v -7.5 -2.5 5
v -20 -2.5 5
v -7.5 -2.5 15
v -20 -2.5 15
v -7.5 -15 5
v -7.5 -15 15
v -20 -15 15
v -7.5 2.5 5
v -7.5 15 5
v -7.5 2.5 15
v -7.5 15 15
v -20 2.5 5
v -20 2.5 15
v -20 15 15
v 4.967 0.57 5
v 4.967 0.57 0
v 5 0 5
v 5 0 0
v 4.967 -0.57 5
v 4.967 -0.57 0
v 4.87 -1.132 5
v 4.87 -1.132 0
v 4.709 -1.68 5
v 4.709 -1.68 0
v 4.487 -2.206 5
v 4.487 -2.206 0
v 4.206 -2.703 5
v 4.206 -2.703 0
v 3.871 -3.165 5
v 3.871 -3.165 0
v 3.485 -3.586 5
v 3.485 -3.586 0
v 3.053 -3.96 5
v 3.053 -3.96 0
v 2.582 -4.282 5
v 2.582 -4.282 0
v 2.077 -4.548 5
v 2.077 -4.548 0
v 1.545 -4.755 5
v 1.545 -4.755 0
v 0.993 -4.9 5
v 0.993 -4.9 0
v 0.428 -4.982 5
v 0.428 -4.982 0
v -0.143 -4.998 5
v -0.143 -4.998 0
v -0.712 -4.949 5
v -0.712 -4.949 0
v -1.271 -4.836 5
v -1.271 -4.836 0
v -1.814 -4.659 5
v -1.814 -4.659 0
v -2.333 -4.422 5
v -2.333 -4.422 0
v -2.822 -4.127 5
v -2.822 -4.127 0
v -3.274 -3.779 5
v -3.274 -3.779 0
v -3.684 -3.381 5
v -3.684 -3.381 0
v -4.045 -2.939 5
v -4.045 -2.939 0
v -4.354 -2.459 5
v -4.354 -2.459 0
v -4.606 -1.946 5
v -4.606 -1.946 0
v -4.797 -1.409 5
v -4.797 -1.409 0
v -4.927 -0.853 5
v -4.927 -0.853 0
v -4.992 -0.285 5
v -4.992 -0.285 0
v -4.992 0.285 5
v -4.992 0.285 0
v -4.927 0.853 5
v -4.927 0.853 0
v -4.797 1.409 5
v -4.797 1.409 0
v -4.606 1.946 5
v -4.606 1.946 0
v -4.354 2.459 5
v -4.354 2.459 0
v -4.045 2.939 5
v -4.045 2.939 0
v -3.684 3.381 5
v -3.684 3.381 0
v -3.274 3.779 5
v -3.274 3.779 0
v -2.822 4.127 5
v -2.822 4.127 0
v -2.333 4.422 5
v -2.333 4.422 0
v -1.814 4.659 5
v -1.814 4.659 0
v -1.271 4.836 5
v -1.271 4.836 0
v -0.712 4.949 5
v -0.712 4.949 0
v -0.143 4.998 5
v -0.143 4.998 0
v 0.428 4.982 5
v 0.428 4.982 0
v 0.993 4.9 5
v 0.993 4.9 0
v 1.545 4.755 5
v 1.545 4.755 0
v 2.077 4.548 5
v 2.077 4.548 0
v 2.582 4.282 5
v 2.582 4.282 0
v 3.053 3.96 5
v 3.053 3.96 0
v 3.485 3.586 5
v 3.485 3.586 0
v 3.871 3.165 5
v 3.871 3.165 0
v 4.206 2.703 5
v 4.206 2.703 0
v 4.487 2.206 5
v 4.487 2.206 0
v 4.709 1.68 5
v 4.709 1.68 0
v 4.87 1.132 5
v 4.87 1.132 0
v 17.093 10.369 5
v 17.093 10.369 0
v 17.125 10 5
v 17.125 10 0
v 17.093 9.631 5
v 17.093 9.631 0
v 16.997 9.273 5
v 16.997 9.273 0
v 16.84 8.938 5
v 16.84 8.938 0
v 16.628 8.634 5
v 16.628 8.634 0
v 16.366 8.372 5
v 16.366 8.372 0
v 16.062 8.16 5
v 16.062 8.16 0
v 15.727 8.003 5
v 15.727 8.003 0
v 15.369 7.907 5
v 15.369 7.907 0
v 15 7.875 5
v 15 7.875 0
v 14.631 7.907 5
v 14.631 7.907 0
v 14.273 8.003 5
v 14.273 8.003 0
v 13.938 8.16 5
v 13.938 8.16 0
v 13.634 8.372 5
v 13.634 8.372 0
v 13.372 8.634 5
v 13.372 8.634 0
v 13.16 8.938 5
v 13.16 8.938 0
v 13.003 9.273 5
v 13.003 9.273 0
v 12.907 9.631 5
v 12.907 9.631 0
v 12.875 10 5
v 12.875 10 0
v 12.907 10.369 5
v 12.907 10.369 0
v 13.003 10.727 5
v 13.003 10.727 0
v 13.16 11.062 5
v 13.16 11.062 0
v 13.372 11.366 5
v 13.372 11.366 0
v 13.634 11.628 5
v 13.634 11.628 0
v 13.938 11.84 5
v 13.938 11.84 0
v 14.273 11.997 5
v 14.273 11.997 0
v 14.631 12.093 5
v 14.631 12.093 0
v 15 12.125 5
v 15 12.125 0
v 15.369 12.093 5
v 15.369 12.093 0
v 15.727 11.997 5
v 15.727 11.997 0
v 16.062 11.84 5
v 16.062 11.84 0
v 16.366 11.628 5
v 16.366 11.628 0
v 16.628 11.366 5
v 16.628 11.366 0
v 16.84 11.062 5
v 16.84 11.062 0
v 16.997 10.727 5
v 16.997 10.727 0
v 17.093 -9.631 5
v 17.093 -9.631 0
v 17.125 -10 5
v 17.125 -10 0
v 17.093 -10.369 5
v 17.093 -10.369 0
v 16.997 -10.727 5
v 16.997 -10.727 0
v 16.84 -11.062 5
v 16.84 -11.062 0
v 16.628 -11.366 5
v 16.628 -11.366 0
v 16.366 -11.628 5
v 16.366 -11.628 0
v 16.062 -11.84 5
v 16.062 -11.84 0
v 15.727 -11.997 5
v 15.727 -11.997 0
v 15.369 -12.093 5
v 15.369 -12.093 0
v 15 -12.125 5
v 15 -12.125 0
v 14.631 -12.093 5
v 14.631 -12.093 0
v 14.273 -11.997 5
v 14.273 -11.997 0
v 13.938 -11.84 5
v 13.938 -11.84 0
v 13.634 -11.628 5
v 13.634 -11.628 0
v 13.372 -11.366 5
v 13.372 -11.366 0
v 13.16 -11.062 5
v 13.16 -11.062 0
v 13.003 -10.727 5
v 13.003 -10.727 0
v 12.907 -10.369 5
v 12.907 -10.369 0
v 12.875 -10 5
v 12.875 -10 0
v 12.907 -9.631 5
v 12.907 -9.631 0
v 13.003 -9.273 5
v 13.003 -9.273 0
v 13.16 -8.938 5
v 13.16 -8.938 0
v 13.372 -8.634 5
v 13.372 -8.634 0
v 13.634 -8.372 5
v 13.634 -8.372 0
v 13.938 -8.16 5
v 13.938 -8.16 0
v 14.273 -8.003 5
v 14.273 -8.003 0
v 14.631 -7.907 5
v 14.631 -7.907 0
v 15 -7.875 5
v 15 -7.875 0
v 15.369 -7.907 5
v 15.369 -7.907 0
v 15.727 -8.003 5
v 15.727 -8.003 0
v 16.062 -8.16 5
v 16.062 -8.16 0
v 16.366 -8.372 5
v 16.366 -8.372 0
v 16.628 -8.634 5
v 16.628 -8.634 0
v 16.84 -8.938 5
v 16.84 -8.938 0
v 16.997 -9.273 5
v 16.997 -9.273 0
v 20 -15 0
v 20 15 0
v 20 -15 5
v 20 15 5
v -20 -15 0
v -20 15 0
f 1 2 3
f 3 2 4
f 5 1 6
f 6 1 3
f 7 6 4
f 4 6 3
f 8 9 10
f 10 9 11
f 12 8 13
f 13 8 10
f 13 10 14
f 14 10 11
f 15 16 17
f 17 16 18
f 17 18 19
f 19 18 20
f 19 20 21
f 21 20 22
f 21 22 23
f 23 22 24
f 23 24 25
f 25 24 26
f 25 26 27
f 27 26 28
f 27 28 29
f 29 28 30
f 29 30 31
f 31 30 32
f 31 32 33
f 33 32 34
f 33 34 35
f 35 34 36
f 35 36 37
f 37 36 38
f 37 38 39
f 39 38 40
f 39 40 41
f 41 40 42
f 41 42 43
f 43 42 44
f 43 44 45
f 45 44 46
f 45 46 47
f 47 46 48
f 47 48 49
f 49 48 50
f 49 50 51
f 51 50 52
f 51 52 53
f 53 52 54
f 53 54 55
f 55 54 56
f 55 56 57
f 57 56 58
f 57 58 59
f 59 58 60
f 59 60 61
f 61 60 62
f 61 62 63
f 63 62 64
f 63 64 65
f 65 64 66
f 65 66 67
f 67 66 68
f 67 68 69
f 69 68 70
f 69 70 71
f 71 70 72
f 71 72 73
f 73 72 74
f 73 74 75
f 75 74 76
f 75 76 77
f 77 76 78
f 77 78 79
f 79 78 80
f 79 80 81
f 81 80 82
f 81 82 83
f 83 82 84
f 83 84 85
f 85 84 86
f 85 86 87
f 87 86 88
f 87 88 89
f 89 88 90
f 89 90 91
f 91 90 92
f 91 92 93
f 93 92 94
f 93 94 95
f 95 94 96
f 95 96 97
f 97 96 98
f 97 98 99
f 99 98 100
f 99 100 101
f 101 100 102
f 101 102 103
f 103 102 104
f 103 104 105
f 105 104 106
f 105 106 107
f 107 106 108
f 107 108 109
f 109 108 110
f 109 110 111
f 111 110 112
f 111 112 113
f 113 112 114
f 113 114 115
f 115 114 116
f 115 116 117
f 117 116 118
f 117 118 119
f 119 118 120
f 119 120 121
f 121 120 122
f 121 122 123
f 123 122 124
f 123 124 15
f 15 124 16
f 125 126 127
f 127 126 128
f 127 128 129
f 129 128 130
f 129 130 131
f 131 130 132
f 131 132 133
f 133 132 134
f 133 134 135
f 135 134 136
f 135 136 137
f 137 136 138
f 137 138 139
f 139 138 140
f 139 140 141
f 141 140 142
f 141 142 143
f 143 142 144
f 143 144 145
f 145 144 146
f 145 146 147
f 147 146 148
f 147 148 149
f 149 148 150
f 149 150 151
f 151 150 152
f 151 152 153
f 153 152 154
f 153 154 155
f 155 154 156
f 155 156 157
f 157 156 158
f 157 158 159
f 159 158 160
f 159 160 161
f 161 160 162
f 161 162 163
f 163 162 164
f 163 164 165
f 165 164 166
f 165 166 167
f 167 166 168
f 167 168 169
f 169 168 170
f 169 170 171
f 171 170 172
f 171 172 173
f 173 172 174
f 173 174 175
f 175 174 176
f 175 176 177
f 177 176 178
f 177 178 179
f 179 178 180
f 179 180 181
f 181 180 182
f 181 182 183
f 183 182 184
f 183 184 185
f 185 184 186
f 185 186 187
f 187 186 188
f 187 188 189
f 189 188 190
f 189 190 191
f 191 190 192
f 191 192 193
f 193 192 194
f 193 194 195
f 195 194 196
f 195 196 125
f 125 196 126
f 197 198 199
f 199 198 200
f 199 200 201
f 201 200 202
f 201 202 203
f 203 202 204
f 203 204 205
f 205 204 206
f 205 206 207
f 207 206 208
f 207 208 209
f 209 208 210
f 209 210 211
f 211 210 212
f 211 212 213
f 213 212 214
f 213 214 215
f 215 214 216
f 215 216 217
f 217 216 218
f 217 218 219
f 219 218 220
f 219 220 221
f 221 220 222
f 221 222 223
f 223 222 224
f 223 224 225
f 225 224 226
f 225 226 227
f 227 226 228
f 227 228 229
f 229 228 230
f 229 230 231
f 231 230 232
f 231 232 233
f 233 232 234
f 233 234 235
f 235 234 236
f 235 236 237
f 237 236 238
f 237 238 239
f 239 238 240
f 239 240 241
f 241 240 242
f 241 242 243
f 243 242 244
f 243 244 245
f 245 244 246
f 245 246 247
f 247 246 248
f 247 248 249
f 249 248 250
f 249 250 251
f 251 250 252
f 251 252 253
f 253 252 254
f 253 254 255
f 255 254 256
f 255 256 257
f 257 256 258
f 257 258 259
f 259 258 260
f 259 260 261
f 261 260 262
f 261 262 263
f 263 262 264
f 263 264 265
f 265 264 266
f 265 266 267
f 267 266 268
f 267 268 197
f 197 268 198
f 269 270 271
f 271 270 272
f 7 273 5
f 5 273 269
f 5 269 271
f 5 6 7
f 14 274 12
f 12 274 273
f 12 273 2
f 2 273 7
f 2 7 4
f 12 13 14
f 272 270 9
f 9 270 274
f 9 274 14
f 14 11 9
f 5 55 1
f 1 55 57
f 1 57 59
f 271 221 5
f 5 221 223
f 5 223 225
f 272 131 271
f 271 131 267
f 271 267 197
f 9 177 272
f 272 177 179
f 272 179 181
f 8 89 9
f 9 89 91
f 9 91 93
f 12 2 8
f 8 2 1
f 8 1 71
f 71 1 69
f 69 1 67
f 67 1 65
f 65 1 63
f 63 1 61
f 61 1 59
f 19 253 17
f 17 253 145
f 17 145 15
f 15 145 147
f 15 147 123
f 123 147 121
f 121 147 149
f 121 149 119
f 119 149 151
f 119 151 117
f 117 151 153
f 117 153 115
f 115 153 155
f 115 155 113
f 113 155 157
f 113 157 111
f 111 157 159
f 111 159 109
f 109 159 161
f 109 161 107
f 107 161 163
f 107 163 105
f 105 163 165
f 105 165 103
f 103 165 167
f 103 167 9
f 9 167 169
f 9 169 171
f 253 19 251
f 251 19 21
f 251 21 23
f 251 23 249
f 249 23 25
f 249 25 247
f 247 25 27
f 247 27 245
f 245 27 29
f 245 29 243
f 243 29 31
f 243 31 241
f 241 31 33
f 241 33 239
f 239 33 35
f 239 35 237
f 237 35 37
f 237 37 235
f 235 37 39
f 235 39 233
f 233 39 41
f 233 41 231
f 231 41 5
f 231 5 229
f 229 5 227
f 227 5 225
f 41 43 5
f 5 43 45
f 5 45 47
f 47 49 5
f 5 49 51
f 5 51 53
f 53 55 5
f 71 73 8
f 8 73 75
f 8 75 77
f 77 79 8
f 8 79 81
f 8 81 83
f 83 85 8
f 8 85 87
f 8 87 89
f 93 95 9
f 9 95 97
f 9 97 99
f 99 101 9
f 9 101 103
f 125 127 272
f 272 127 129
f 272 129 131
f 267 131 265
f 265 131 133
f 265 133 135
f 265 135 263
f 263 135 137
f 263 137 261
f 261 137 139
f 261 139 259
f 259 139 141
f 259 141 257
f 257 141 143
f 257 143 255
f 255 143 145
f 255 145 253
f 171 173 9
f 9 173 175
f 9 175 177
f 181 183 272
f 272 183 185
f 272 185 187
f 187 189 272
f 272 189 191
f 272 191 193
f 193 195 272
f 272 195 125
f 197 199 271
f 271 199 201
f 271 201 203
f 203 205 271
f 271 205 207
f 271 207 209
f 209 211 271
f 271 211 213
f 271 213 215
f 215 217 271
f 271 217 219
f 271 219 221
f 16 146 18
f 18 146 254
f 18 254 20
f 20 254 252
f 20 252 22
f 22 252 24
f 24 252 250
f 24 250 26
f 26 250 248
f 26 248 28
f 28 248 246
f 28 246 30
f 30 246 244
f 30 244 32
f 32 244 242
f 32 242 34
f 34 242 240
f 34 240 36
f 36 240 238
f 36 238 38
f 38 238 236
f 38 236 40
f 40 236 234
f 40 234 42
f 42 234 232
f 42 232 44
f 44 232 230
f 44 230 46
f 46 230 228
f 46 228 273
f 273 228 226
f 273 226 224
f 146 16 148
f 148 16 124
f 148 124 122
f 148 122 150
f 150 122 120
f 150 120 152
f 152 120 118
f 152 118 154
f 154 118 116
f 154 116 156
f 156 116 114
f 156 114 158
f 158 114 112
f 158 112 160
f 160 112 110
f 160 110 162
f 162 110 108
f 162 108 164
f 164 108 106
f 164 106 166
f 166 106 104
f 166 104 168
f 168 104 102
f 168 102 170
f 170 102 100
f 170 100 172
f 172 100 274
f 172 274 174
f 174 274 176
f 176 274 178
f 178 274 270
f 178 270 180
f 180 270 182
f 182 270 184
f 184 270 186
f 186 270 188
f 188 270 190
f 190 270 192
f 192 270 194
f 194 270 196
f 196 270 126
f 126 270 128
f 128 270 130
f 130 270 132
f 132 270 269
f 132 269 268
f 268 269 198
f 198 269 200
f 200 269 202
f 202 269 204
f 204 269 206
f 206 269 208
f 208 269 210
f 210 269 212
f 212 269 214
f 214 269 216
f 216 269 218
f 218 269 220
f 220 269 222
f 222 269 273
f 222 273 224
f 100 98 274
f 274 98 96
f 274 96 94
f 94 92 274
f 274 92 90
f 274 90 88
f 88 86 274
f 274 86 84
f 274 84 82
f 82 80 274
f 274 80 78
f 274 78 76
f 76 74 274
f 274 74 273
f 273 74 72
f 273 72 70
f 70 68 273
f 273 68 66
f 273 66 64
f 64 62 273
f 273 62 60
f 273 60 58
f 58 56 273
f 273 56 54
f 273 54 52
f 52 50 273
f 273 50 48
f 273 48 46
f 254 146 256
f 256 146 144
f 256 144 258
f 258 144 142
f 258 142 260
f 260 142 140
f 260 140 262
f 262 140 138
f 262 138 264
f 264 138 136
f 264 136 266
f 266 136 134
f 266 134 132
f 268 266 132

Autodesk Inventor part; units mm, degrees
ref_plane "YZ Plane" through (0, 0, 0) normal (1, 0, 0) x (0, 1, 0)
ref_plane "XZ Plane" through (0, 0, 0) normal (0, 1, 0) x (-1, 0, 0)
ref_plane "XY Plane" through (0, 0, 0) normal (0, 0, 1) x (1, 0, 0)
sketch "Sketch1" plane through (0, 0, 0) normal (0, 0, 1) x (1, 0, 0)
  line L0 (20, 15) -> (-20, 15)
  line L1 (-20, 15) -> (-20, -15)
  line L2 (-20, -15) -> (20, -15)
  line L3 (20, -15) -> (20, 15)
  line L4 (0, 0) -> (1.9807, 0) construction
  line L5 (0, 0) -> (0, -2.0582) construction
  circle A0 centre (15, -10) radius 2.125 projected
  circle A1 centre (15, 10) radius 2.125 projected
  circle A2 centre (0, 0) radius 2.125 projected
  circle A3 centre (15, -10) radius 2.125
  circle A4 centre (15, 10) radius 2.125
  circle A5 centre (0, 0) radius 2.125
  circle A6 centre (0, 0) radius 2.125 projected
  circle A7 centre (0, 0) radius 5
  dimension "d4" = 40
  dimension "d5" = 30
  dimension "d8" = 10
extrude "Extrusion1" add sketch "Sketch1" along normal blind 5 contours L3 L2 L1 L0
sketch "Sketch3" plane through (0, 0, 5) normal (0, 0, 1) x (1, 0, 0)
  line L0 (-20, -15) -> (20, -15) projected
  line L1 (20, -15) -> (20, 15) projected
  line L2 (20, 15) -> (-20, 15) projected
  line L3 (-7.5, -15) -> (-7.5, -2.5)
  line L4 (-7.5, -2.5) -> (-20, -2.5)
  line L5 (-20, 15) -> (-20, -15) projected
  line L6 (-20, 2.5) -> (-7.5, 2.5)
  line L7 (-7.5, 2.5) -> (-7.5, 15)
  point P0 (0, 0)
  dimension "d9" = 5
extrude "Extrusion2" add sketch "Sketch3" along normal blind 10 contours L5 L4 L3 L0 | L5 L2 L7 L6
properties part number "YCartBeltClamp"
